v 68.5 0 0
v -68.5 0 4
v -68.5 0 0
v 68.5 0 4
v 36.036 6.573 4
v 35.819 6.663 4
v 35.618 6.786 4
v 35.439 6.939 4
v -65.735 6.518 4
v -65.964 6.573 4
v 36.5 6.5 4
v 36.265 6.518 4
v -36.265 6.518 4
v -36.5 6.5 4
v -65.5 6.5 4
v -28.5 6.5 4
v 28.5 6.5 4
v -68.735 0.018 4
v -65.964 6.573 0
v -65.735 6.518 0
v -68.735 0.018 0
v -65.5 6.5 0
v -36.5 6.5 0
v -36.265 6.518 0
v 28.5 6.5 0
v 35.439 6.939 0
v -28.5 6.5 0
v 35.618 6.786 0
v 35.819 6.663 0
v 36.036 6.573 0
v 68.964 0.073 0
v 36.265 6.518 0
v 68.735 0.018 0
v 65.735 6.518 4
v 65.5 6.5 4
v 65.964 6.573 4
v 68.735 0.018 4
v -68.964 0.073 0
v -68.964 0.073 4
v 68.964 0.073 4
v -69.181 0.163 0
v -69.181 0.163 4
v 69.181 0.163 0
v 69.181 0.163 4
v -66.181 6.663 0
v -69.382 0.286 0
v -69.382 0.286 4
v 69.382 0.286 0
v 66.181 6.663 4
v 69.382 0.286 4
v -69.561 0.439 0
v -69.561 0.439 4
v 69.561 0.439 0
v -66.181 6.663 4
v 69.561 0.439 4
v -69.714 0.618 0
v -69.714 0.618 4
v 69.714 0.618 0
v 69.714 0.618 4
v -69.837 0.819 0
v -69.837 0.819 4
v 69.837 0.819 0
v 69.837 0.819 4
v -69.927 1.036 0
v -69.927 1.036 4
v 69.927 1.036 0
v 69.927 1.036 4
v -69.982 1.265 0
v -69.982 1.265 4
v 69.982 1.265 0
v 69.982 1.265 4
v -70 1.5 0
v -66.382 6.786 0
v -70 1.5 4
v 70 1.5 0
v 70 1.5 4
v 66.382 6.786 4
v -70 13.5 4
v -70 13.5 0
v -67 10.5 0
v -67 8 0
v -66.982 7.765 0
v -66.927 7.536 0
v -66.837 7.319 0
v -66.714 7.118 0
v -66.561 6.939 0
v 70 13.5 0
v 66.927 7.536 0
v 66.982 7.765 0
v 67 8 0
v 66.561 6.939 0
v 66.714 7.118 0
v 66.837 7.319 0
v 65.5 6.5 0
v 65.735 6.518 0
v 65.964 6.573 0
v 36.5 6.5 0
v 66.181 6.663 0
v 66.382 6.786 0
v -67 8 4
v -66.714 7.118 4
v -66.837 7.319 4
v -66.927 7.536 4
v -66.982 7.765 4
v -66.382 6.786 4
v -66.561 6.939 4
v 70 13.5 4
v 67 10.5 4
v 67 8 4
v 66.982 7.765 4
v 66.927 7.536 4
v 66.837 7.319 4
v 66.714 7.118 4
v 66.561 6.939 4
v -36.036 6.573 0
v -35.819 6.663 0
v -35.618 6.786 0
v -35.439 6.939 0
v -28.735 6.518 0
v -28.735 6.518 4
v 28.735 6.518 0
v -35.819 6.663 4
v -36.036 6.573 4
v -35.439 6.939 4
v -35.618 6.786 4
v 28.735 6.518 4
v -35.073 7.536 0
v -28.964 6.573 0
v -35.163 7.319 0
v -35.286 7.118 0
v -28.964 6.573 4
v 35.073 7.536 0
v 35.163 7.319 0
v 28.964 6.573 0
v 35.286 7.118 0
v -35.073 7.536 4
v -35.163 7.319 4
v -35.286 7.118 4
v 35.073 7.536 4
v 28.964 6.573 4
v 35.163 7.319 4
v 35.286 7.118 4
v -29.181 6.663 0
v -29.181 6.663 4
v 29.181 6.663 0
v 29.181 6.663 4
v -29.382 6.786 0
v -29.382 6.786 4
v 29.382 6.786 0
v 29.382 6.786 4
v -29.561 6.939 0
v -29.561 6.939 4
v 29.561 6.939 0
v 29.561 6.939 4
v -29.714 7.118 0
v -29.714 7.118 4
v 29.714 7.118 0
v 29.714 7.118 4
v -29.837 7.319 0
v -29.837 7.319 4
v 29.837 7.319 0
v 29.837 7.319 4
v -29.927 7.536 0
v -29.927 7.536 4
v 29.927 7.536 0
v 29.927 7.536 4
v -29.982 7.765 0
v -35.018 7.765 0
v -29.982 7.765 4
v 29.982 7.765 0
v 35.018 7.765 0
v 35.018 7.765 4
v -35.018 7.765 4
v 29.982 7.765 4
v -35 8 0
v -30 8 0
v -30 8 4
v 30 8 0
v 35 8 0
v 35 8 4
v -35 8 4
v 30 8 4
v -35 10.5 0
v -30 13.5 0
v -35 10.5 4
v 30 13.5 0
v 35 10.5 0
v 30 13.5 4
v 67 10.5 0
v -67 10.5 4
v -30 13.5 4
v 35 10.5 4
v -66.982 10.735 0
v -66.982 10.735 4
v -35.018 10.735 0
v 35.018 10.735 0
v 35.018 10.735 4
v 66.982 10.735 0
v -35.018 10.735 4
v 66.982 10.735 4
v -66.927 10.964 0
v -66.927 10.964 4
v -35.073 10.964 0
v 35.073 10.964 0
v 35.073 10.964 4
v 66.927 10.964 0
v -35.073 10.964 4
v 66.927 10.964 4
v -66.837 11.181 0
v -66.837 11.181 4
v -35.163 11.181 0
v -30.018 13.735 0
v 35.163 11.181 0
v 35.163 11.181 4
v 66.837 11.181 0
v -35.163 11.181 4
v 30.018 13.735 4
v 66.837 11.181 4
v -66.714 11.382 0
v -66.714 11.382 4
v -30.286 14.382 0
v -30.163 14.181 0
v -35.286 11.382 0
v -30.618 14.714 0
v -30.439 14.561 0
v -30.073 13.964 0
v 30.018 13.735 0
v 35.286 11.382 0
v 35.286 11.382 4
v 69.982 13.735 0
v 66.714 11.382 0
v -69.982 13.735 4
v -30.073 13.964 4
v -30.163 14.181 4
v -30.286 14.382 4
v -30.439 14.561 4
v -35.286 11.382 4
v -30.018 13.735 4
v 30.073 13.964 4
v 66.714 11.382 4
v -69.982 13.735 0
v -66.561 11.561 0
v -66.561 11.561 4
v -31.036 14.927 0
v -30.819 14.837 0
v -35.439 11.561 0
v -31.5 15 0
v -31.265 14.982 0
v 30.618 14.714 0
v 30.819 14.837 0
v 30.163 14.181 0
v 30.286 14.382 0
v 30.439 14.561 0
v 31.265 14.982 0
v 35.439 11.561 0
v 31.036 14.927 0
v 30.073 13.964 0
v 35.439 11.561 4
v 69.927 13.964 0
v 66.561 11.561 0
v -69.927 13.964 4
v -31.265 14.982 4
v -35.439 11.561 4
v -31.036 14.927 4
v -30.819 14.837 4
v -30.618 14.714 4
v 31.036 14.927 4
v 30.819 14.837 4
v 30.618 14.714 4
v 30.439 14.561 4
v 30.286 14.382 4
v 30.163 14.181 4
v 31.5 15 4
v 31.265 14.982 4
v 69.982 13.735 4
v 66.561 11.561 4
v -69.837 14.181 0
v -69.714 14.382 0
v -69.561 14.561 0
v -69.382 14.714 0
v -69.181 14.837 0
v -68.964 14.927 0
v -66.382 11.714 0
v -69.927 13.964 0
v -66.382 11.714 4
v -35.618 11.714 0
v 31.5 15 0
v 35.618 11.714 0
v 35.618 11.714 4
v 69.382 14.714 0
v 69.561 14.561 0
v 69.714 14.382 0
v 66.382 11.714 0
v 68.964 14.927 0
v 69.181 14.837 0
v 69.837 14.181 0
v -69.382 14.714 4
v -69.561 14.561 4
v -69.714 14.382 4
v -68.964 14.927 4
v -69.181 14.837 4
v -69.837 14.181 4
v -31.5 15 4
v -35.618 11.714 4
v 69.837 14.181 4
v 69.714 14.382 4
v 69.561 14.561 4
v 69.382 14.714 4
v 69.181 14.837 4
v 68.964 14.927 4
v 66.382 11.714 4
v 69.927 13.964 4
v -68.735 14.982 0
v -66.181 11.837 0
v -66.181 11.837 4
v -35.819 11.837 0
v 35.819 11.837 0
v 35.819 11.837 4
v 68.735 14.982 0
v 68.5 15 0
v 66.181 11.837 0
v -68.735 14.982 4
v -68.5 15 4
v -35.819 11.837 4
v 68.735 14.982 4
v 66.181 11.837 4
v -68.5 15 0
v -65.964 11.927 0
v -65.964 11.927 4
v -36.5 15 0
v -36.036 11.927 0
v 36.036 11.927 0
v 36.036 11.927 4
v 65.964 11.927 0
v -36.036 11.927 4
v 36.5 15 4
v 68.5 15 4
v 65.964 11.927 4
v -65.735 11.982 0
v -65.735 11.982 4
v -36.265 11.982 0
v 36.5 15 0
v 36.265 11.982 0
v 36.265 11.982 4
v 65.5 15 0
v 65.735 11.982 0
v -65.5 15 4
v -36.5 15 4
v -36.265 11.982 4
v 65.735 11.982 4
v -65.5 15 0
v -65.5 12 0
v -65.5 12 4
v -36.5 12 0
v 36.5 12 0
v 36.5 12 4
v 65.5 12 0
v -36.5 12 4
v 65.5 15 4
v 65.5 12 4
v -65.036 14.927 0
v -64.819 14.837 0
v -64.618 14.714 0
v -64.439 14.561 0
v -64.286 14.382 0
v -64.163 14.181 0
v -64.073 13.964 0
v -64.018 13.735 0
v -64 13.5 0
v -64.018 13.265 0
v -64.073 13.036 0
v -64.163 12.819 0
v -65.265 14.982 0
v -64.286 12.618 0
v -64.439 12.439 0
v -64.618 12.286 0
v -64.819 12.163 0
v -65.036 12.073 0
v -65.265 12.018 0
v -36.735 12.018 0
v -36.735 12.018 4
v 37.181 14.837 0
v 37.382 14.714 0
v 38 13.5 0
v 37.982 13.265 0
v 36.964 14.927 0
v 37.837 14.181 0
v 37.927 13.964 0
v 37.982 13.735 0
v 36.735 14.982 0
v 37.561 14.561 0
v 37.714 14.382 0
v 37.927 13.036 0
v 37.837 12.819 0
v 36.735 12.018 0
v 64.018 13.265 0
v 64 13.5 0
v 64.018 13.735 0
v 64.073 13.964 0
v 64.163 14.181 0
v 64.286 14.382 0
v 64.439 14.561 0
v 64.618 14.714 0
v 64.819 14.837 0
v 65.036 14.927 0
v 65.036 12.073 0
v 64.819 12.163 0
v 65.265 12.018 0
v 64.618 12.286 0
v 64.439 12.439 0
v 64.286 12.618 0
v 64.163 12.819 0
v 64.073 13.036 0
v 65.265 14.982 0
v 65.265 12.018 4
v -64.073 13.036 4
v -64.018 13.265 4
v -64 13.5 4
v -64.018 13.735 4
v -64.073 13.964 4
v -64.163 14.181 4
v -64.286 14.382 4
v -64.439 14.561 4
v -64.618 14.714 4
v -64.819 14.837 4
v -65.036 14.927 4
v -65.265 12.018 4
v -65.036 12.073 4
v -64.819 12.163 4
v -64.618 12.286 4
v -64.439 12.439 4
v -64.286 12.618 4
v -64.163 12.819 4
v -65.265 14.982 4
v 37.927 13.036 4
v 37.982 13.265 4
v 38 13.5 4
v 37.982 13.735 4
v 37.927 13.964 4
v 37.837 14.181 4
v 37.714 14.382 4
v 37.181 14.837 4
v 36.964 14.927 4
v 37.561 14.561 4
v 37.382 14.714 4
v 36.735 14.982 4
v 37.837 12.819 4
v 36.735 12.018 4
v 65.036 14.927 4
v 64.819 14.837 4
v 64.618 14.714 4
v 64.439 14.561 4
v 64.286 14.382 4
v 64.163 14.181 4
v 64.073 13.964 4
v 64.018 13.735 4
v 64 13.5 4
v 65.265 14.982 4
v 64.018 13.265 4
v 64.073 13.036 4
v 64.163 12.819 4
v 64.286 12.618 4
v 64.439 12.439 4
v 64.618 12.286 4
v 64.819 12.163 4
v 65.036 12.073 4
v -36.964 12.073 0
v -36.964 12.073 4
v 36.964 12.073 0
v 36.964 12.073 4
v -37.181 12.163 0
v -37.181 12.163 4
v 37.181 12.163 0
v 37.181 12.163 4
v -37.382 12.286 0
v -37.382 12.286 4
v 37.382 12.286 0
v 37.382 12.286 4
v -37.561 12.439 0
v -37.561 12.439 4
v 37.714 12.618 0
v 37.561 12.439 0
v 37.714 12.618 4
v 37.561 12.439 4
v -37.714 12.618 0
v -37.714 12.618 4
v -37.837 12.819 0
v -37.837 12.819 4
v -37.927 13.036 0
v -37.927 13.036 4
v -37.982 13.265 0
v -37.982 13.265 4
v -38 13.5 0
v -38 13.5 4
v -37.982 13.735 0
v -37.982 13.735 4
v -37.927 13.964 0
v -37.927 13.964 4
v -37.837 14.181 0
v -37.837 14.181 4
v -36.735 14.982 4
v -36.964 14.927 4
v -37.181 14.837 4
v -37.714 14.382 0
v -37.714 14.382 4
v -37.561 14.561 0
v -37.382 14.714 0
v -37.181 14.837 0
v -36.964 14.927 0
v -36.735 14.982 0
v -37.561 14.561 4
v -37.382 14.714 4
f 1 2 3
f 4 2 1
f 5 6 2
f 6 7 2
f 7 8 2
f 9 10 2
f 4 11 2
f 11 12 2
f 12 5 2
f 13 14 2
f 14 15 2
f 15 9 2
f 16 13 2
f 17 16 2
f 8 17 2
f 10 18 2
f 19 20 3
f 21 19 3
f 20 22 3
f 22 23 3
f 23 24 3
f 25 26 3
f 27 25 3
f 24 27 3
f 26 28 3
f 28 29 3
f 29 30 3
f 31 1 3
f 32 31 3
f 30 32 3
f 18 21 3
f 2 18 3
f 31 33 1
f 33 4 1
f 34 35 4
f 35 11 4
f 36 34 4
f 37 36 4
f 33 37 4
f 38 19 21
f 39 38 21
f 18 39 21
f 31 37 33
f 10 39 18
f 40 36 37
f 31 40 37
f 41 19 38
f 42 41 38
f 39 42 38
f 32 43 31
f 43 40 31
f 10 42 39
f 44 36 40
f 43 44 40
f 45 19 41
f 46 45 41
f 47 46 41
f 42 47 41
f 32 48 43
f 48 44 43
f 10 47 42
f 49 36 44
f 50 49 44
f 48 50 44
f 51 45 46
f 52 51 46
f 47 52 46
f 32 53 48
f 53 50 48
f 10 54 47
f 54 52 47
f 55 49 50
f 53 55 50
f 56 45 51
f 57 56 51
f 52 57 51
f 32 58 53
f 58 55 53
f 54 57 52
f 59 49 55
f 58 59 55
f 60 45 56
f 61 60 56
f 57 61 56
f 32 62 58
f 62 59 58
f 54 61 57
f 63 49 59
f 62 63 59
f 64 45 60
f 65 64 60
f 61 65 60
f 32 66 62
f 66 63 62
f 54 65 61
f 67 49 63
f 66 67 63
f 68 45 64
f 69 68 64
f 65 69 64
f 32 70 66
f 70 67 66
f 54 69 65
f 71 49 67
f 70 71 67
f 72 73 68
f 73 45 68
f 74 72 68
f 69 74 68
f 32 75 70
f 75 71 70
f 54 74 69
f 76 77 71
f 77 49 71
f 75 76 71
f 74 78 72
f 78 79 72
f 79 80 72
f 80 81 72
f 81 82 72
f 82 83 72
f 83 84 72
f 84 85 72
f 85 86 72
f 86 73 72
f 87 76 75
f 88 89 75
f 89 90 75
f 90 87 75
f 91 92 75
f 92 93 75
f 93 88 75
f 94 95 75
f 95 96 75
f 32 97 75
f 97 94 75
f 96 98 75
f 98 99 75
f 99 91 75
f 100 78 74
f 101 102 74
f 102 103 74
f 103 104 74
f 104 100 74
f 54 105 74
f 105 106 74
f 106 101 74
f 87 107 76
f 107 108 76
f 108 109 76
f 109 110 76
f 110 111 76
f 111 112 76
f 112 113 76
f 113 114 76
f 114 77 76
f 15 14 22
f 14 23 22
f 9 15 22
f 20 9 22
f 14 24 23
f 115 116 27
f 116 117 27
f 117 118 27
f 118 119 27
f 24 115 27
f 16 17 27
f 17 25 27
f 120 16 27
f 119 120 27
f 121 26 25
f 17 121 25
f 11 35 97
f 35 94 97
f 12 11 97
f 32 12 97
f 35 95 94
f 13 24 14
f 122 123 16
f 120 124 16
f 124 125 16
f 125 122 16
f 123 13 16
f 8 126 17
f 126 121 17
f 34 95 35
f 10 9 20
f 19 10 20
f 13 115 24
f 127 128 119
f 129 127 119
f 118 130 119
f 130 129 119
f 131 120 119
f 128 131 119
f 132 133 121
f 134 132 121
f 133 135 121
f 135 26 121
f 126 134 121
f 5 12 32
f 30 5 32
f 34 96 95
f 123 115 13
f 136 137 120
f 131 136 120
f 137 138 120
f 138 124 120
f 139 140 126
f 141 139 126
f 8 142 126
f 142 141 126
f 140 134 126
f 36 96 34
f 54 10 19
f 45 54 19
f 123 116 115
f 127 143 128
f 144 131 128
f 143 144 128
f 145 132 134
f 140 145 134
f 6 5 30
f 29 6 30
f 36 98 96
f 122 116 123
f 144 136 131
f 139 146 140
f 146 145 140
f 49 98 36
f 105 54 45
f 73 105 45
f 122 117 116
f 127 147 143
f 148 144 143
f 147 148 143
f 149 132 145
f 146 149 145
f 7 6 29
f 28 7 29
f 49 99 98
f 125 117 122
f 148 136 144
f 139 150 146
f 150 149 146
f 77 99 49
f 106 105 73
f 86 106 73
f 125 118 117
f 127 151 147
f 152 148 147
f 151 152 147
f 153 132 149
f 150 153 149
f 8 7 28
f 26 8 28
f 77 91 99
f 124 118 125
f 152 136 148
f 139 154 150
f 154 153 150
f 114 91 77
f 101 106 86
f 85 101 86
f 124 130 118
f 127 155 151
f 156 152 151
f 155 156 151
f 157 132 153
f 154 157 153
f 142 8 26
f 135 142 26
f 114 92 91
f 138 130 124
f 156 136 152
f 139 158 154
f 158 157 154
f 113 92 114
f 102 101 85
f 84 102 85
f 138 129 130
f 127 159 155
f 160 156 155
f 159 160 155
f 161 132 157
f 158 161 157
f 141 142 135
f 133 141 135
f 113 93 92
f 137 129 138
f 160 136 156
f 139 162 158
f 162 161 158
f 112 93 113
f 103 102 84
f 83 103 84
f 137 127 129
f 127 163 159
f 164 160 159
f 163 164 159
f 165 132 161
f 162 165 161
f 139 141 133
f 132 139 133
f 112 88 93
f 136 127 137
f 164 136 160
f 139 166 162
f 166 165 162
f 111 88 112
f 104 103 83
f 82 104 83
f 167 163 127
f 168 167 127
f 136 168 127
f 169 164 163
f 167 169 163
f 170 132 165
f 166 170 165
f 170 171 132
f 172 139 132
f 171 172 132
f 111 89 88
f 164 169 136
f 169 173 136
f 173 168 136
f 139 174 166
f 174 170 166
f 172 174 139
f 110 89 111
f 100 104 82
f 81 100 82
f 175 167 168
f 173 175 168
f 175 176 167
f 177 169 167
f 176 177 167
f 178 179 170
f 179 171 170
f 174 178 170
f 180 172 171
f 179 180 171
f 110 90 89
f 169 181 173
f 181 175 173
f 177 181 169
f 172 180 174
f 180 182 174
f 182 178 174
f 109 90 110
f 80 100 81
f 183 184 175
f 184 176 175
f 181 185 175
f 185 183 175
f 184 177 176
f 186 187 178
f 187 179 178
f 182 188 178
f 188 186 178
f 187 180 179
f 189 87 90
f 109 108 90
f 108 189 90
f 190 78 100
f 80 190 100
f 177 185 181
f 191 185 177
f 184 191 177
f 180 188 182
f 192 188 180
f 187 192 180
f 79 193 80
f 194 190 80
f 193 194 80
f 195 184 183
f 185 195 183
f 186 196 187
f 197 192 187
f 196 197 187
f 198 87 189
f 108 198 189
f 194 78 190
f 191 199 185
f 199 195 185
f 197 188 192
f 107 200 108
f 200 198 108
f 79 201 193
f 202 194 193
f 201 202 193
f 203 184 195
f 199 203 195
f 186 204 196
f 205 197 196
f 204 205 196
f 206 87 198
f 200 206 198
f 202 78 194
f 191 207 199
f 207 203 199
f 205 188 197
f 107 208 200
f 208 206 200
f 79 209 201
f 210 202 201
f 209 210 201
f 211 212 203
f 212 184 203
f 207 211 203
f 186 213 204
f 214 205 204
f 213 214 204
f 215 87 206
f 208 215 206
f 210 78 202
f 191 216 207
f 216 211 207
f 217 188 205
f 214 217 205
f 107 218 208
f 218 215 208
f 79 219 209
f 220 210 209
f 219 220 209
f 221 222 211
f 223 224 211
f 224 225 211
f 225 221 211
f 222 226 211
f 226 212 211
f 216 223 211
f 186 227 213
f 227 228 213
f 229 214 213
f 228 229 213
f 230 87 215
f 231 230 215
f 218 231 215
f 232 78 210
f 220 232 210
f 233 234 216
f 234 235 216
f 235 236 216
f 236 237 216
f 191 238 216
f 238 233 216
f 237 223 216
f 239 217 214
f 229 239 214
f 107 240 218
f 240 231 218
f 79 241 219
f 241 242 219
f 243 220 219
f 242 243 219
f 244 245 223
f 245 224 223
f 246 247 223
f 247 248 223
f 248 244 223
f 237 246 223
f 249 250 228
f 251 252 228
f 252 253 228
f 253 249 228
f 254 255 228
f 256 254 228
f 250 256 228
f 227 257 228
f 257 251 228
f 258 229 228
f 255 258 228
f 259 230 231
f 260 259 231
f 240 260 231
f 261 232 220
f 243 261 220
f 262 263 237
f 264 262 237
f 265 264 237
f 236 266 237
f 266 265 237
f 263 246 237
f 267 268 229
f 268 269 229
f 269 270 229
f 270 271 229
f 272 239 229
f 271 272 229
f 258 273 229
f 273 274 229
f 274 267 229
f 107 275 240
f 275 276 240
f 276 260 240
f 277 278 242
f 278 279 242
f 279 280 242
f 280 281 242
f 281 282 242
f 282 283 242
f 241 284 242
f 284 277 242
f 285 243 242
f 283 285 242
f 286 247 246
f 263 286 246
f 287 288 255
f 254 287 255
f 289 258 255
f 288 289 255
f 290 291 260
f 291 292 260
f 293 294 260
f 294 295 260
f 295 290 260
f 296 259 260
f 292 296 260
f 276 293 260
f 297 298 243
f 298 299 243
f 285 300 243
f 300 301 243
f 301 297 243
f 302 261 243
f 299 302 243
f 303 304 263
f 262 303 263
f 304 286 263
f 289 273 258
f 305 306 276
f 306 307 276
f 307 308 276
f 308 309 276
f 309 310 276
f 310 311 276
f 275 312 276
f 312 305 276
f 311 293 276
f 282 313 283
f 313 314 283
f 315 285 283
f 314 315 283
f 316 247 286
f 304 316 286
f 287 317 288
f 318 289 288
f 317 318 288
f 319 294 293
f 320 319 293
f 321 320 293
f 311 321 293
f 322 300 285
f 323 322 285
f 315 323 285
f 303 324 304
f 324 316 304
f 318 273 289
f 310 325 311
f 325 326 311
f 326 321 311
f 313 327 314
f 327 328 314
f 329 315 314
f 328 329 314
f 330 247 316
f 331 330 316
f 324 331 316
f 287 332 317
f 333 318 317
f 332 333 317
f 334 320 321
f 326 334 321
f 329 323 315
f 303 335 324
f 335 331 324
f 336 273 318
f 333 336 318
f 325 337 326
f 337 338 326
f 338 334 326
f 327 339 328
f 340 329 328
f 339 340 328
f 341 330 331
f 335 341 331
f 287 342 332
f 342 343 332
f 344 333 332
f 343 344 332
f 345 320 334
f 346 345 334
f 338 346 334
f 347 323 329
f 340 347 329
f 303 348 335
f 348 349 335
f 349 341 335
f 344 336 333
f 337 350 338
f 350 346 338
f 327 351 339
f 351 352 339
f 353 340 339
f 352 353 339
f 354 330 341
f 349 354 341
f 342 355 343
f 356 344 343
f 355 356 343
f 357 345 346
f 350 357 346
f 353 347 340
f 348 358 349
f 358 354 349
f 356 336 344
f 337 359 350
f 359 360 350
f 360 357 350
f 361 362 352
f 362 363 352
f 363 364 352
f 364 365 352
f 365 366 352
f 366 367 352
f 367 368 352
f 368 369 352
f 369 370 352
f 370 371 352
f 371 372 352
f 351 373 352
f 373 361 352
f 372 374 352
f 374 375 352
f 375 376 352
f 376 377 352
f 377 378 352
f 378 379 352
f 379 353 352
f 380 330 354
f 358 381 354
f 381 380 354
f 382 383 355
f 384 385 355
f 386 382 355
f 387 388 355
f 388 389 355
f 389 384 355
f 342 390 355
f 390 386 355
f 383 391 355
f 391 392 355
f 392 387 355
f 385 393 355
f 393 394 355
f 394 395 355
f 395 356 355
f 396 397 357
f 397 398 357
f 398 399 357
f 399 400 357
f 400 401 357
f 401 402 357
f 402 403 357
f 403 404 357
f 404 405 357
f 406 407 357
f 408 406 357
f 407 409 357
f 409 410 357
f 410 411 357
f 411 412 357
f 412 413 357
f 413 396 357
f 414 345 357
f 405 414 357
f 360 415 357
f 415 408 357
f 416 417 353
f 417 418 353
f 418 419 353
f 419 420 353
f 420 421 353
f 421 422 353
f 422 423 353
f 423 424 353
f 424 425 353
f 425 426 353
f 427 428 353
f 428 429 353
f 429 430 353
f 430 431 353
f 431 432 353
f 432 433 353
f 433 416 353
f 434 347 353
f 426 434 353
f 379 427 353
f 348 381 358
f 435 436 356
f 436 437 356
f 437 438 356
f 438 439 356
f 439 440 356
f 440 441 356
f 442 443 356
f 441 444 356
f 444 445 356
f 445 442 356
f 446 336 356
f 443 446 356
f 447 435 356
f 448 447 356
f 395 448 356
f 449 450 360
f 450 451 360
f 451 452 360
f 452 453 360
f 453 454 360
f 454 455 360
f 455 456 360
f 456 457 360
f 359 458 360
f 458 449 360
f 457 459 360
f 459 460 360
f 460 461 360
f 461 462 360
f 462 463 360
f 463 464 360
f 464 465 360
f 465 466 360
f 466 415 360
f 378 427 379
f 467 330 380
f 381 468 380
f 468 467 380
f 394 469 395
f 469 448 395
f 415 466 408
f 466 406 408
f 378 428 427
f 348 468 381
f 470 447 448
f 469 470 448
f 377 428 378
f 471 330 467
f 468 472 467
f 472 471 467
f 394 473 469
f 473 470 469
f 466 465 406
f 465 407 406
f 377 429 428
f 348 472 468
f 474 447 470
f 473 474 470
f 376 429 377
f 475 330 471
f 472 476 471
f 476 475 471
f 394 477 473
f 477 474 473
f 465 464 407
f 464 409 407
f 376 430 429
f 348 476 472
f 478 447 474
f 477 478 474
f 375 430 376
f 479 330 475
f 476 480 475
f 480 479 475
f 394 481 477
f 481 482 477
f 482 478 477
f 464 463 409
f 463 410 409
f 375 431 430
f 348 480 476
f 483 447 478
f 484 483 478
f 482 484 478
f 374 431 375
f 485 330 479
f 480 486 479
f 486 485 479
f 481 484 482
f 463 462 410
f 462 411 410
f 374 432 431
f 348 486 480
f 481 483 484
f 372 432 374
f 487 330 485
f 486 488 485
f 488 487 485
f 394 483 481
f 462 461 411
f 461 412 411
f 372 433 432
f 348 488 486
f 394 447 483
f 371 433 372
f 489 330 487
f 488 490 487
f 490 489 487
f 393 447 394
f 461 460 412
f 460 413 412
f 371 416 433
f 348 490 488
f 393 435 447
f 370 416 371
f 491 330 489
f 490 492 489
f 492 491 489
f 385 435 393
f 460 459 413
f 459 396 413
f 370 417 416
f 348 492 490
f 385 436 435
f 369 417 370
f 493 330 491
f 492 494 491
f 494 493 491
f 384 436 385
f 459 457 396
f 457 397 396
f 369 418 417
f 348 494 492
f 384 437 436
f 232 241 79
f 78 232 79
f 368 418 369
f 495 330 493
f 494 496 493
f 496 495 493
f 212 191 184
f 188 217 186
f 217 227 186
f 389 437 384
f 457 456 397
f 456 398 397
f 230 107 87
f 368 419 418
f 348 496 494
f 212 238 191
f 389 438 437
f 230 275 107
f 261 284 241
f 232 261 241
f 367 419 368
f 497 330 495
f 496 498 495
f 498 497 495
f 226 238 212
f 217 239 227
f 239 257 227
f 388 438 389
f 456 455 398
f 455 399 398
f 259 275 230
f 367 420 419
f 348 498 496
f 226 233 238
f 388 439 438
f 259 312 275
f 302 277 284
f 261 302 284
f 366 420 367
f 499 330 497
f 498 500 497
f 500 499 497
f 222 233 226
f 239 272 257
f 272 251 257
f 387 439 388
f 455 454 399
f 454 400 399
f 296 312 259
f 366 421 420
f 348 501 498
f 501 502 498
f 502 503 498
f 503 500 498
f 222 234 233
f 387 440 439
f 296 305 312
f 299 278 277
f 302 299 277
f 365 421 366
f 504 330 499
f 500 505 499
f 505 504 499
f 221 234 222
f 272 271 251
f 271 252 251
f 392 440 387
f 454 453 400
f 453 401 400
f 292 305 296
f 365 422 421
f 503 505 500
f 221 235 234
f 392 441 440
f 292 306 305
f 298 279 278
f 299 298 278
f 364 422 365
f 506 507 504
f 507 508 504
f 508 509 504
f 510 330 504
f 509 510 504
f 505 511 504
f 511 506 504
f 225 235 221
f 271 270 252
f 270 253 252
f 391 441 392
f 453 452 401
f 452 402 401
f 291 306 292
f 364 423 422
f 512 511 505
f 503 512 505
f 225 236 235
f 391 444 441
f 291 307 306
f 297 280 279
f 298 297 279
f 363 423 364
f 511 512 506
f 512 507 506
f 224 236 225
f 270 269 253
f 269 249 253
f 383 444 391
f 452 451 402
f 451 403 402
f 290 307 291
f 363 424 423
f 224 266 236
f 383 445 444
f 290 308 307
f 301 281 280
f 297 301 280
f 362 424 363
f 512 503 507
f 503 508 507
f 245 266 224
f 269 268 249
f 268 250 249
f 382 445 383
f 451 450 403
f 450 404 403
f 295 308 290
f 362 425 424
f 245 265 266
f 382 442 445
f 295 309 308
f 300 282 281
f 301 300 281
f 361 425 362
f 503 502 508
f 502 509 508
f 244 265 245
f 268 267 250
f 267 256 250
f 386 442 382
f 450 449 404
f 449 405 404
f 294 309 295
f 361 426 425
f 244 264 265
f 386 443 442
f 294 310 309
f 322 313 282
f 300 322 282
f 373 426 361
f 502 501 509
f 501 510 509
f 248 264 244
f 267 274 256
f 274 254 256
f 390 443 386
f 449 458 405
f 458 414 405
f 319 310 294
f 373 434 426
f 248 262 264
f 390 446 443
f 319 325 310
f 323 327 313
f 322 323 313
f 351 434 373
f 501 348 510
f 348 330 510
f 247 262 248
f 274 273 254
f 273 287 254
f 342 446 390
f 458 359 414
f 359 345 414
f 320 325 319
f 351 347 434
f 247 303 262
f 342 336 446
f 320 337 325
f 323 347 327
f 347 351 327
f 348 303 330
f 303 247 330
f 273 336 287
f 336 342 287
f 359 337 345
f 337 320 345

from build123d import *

# Parameters (mm, degrees)
ESQUISSE1_W             = 140
ESQUISSE1_H             = 15
BOSS_EXTRU_1_DEPTH      = 4
ENL_V_MAT_EXTRU_1_DEPTH = 10
ESQUISSE3_W             = 60
ESQUISSE3_H             = 8.5
ENL_V_MAT_EXTRU_2_DEPTH = 10
CONG_1_R                = 1.5


with BuildPart() as part:
    # Esquisse1 → Boss.-Extru.1 (new body)
    with BuildSketch(Plane.XY):
        with Locations((0, 7.5)):
            Rectangle(ESQUISSE1_W, ESQUISSE1_H)
    extrude(amount=BOSS_EXTRU_1_DEPTH)

    # Esquisse2 → Enlèv. mat.-Extru.1 (cut)
    with BuildSketch(Plane.XY.offset(4)):
        Polygon((-64, 15), (-64, 12), (-67, 12), (-67, 6.5), (-35, 6.5), (-35, 12), (-38, 12), (-38, 15), align=None)
        Polygon((38, 12), (38, 15), (64, 15), (64, 12), (67, 12), (67, 6.5), (35, 6.5), (35, 12), align=None)
    extrude(amount=-ENL_V_MAT_EXTRU_1_DEPTH, mode=Mode.SUBTRACT)

    # Esquisse3 → Enlèv. mat.-Extru.2 (cut)
    with BuildSketch(Plane.XY.offset(4)):
        with Locations((0, 10.75)):
            Rectangle(ESQUISSE3_W, ESQUISSE3_H)
    extrude(amount=-ENL_V_MAT_EXTRU_2_DEPTH, mode=Mode.SUBTRACT)

    # Congé1
    cong_1_edges = [part.edges().sort_by_distance(p)[0] for p in [
        (30, 15, 2),
        (38, 15, 2),
        (64, 15, 2),
        (70, 15, 2),
        (-70, 0, 2),
        (-70, 15, 2),
        (-64, 15, 2),
        (-64, 12, 2),
        (-67, 12, 2),
        (-67, 6.5, 2),
        (-35, 6.5, 2),
        (-35, 12, 2),
        (-38, 12, 2),
        (-38, 15, 2),
        (-30, 15, 2),
        (-30, 6.5, 2),
        (30, 6.5, 2),
        (35, 6.5, 2),
        (67, 6.5, 2),
        (70, 0, 2),
        (64, 12, 2),
        (67, 12, 2),
        (35, 12, 2),
        (38, 12, 2),
    ]]
    fillet(cong_1_edges, radius=CONG_1_R - 0.0001)  # a hair under: the kernel refuses the full size


solid = part.part
